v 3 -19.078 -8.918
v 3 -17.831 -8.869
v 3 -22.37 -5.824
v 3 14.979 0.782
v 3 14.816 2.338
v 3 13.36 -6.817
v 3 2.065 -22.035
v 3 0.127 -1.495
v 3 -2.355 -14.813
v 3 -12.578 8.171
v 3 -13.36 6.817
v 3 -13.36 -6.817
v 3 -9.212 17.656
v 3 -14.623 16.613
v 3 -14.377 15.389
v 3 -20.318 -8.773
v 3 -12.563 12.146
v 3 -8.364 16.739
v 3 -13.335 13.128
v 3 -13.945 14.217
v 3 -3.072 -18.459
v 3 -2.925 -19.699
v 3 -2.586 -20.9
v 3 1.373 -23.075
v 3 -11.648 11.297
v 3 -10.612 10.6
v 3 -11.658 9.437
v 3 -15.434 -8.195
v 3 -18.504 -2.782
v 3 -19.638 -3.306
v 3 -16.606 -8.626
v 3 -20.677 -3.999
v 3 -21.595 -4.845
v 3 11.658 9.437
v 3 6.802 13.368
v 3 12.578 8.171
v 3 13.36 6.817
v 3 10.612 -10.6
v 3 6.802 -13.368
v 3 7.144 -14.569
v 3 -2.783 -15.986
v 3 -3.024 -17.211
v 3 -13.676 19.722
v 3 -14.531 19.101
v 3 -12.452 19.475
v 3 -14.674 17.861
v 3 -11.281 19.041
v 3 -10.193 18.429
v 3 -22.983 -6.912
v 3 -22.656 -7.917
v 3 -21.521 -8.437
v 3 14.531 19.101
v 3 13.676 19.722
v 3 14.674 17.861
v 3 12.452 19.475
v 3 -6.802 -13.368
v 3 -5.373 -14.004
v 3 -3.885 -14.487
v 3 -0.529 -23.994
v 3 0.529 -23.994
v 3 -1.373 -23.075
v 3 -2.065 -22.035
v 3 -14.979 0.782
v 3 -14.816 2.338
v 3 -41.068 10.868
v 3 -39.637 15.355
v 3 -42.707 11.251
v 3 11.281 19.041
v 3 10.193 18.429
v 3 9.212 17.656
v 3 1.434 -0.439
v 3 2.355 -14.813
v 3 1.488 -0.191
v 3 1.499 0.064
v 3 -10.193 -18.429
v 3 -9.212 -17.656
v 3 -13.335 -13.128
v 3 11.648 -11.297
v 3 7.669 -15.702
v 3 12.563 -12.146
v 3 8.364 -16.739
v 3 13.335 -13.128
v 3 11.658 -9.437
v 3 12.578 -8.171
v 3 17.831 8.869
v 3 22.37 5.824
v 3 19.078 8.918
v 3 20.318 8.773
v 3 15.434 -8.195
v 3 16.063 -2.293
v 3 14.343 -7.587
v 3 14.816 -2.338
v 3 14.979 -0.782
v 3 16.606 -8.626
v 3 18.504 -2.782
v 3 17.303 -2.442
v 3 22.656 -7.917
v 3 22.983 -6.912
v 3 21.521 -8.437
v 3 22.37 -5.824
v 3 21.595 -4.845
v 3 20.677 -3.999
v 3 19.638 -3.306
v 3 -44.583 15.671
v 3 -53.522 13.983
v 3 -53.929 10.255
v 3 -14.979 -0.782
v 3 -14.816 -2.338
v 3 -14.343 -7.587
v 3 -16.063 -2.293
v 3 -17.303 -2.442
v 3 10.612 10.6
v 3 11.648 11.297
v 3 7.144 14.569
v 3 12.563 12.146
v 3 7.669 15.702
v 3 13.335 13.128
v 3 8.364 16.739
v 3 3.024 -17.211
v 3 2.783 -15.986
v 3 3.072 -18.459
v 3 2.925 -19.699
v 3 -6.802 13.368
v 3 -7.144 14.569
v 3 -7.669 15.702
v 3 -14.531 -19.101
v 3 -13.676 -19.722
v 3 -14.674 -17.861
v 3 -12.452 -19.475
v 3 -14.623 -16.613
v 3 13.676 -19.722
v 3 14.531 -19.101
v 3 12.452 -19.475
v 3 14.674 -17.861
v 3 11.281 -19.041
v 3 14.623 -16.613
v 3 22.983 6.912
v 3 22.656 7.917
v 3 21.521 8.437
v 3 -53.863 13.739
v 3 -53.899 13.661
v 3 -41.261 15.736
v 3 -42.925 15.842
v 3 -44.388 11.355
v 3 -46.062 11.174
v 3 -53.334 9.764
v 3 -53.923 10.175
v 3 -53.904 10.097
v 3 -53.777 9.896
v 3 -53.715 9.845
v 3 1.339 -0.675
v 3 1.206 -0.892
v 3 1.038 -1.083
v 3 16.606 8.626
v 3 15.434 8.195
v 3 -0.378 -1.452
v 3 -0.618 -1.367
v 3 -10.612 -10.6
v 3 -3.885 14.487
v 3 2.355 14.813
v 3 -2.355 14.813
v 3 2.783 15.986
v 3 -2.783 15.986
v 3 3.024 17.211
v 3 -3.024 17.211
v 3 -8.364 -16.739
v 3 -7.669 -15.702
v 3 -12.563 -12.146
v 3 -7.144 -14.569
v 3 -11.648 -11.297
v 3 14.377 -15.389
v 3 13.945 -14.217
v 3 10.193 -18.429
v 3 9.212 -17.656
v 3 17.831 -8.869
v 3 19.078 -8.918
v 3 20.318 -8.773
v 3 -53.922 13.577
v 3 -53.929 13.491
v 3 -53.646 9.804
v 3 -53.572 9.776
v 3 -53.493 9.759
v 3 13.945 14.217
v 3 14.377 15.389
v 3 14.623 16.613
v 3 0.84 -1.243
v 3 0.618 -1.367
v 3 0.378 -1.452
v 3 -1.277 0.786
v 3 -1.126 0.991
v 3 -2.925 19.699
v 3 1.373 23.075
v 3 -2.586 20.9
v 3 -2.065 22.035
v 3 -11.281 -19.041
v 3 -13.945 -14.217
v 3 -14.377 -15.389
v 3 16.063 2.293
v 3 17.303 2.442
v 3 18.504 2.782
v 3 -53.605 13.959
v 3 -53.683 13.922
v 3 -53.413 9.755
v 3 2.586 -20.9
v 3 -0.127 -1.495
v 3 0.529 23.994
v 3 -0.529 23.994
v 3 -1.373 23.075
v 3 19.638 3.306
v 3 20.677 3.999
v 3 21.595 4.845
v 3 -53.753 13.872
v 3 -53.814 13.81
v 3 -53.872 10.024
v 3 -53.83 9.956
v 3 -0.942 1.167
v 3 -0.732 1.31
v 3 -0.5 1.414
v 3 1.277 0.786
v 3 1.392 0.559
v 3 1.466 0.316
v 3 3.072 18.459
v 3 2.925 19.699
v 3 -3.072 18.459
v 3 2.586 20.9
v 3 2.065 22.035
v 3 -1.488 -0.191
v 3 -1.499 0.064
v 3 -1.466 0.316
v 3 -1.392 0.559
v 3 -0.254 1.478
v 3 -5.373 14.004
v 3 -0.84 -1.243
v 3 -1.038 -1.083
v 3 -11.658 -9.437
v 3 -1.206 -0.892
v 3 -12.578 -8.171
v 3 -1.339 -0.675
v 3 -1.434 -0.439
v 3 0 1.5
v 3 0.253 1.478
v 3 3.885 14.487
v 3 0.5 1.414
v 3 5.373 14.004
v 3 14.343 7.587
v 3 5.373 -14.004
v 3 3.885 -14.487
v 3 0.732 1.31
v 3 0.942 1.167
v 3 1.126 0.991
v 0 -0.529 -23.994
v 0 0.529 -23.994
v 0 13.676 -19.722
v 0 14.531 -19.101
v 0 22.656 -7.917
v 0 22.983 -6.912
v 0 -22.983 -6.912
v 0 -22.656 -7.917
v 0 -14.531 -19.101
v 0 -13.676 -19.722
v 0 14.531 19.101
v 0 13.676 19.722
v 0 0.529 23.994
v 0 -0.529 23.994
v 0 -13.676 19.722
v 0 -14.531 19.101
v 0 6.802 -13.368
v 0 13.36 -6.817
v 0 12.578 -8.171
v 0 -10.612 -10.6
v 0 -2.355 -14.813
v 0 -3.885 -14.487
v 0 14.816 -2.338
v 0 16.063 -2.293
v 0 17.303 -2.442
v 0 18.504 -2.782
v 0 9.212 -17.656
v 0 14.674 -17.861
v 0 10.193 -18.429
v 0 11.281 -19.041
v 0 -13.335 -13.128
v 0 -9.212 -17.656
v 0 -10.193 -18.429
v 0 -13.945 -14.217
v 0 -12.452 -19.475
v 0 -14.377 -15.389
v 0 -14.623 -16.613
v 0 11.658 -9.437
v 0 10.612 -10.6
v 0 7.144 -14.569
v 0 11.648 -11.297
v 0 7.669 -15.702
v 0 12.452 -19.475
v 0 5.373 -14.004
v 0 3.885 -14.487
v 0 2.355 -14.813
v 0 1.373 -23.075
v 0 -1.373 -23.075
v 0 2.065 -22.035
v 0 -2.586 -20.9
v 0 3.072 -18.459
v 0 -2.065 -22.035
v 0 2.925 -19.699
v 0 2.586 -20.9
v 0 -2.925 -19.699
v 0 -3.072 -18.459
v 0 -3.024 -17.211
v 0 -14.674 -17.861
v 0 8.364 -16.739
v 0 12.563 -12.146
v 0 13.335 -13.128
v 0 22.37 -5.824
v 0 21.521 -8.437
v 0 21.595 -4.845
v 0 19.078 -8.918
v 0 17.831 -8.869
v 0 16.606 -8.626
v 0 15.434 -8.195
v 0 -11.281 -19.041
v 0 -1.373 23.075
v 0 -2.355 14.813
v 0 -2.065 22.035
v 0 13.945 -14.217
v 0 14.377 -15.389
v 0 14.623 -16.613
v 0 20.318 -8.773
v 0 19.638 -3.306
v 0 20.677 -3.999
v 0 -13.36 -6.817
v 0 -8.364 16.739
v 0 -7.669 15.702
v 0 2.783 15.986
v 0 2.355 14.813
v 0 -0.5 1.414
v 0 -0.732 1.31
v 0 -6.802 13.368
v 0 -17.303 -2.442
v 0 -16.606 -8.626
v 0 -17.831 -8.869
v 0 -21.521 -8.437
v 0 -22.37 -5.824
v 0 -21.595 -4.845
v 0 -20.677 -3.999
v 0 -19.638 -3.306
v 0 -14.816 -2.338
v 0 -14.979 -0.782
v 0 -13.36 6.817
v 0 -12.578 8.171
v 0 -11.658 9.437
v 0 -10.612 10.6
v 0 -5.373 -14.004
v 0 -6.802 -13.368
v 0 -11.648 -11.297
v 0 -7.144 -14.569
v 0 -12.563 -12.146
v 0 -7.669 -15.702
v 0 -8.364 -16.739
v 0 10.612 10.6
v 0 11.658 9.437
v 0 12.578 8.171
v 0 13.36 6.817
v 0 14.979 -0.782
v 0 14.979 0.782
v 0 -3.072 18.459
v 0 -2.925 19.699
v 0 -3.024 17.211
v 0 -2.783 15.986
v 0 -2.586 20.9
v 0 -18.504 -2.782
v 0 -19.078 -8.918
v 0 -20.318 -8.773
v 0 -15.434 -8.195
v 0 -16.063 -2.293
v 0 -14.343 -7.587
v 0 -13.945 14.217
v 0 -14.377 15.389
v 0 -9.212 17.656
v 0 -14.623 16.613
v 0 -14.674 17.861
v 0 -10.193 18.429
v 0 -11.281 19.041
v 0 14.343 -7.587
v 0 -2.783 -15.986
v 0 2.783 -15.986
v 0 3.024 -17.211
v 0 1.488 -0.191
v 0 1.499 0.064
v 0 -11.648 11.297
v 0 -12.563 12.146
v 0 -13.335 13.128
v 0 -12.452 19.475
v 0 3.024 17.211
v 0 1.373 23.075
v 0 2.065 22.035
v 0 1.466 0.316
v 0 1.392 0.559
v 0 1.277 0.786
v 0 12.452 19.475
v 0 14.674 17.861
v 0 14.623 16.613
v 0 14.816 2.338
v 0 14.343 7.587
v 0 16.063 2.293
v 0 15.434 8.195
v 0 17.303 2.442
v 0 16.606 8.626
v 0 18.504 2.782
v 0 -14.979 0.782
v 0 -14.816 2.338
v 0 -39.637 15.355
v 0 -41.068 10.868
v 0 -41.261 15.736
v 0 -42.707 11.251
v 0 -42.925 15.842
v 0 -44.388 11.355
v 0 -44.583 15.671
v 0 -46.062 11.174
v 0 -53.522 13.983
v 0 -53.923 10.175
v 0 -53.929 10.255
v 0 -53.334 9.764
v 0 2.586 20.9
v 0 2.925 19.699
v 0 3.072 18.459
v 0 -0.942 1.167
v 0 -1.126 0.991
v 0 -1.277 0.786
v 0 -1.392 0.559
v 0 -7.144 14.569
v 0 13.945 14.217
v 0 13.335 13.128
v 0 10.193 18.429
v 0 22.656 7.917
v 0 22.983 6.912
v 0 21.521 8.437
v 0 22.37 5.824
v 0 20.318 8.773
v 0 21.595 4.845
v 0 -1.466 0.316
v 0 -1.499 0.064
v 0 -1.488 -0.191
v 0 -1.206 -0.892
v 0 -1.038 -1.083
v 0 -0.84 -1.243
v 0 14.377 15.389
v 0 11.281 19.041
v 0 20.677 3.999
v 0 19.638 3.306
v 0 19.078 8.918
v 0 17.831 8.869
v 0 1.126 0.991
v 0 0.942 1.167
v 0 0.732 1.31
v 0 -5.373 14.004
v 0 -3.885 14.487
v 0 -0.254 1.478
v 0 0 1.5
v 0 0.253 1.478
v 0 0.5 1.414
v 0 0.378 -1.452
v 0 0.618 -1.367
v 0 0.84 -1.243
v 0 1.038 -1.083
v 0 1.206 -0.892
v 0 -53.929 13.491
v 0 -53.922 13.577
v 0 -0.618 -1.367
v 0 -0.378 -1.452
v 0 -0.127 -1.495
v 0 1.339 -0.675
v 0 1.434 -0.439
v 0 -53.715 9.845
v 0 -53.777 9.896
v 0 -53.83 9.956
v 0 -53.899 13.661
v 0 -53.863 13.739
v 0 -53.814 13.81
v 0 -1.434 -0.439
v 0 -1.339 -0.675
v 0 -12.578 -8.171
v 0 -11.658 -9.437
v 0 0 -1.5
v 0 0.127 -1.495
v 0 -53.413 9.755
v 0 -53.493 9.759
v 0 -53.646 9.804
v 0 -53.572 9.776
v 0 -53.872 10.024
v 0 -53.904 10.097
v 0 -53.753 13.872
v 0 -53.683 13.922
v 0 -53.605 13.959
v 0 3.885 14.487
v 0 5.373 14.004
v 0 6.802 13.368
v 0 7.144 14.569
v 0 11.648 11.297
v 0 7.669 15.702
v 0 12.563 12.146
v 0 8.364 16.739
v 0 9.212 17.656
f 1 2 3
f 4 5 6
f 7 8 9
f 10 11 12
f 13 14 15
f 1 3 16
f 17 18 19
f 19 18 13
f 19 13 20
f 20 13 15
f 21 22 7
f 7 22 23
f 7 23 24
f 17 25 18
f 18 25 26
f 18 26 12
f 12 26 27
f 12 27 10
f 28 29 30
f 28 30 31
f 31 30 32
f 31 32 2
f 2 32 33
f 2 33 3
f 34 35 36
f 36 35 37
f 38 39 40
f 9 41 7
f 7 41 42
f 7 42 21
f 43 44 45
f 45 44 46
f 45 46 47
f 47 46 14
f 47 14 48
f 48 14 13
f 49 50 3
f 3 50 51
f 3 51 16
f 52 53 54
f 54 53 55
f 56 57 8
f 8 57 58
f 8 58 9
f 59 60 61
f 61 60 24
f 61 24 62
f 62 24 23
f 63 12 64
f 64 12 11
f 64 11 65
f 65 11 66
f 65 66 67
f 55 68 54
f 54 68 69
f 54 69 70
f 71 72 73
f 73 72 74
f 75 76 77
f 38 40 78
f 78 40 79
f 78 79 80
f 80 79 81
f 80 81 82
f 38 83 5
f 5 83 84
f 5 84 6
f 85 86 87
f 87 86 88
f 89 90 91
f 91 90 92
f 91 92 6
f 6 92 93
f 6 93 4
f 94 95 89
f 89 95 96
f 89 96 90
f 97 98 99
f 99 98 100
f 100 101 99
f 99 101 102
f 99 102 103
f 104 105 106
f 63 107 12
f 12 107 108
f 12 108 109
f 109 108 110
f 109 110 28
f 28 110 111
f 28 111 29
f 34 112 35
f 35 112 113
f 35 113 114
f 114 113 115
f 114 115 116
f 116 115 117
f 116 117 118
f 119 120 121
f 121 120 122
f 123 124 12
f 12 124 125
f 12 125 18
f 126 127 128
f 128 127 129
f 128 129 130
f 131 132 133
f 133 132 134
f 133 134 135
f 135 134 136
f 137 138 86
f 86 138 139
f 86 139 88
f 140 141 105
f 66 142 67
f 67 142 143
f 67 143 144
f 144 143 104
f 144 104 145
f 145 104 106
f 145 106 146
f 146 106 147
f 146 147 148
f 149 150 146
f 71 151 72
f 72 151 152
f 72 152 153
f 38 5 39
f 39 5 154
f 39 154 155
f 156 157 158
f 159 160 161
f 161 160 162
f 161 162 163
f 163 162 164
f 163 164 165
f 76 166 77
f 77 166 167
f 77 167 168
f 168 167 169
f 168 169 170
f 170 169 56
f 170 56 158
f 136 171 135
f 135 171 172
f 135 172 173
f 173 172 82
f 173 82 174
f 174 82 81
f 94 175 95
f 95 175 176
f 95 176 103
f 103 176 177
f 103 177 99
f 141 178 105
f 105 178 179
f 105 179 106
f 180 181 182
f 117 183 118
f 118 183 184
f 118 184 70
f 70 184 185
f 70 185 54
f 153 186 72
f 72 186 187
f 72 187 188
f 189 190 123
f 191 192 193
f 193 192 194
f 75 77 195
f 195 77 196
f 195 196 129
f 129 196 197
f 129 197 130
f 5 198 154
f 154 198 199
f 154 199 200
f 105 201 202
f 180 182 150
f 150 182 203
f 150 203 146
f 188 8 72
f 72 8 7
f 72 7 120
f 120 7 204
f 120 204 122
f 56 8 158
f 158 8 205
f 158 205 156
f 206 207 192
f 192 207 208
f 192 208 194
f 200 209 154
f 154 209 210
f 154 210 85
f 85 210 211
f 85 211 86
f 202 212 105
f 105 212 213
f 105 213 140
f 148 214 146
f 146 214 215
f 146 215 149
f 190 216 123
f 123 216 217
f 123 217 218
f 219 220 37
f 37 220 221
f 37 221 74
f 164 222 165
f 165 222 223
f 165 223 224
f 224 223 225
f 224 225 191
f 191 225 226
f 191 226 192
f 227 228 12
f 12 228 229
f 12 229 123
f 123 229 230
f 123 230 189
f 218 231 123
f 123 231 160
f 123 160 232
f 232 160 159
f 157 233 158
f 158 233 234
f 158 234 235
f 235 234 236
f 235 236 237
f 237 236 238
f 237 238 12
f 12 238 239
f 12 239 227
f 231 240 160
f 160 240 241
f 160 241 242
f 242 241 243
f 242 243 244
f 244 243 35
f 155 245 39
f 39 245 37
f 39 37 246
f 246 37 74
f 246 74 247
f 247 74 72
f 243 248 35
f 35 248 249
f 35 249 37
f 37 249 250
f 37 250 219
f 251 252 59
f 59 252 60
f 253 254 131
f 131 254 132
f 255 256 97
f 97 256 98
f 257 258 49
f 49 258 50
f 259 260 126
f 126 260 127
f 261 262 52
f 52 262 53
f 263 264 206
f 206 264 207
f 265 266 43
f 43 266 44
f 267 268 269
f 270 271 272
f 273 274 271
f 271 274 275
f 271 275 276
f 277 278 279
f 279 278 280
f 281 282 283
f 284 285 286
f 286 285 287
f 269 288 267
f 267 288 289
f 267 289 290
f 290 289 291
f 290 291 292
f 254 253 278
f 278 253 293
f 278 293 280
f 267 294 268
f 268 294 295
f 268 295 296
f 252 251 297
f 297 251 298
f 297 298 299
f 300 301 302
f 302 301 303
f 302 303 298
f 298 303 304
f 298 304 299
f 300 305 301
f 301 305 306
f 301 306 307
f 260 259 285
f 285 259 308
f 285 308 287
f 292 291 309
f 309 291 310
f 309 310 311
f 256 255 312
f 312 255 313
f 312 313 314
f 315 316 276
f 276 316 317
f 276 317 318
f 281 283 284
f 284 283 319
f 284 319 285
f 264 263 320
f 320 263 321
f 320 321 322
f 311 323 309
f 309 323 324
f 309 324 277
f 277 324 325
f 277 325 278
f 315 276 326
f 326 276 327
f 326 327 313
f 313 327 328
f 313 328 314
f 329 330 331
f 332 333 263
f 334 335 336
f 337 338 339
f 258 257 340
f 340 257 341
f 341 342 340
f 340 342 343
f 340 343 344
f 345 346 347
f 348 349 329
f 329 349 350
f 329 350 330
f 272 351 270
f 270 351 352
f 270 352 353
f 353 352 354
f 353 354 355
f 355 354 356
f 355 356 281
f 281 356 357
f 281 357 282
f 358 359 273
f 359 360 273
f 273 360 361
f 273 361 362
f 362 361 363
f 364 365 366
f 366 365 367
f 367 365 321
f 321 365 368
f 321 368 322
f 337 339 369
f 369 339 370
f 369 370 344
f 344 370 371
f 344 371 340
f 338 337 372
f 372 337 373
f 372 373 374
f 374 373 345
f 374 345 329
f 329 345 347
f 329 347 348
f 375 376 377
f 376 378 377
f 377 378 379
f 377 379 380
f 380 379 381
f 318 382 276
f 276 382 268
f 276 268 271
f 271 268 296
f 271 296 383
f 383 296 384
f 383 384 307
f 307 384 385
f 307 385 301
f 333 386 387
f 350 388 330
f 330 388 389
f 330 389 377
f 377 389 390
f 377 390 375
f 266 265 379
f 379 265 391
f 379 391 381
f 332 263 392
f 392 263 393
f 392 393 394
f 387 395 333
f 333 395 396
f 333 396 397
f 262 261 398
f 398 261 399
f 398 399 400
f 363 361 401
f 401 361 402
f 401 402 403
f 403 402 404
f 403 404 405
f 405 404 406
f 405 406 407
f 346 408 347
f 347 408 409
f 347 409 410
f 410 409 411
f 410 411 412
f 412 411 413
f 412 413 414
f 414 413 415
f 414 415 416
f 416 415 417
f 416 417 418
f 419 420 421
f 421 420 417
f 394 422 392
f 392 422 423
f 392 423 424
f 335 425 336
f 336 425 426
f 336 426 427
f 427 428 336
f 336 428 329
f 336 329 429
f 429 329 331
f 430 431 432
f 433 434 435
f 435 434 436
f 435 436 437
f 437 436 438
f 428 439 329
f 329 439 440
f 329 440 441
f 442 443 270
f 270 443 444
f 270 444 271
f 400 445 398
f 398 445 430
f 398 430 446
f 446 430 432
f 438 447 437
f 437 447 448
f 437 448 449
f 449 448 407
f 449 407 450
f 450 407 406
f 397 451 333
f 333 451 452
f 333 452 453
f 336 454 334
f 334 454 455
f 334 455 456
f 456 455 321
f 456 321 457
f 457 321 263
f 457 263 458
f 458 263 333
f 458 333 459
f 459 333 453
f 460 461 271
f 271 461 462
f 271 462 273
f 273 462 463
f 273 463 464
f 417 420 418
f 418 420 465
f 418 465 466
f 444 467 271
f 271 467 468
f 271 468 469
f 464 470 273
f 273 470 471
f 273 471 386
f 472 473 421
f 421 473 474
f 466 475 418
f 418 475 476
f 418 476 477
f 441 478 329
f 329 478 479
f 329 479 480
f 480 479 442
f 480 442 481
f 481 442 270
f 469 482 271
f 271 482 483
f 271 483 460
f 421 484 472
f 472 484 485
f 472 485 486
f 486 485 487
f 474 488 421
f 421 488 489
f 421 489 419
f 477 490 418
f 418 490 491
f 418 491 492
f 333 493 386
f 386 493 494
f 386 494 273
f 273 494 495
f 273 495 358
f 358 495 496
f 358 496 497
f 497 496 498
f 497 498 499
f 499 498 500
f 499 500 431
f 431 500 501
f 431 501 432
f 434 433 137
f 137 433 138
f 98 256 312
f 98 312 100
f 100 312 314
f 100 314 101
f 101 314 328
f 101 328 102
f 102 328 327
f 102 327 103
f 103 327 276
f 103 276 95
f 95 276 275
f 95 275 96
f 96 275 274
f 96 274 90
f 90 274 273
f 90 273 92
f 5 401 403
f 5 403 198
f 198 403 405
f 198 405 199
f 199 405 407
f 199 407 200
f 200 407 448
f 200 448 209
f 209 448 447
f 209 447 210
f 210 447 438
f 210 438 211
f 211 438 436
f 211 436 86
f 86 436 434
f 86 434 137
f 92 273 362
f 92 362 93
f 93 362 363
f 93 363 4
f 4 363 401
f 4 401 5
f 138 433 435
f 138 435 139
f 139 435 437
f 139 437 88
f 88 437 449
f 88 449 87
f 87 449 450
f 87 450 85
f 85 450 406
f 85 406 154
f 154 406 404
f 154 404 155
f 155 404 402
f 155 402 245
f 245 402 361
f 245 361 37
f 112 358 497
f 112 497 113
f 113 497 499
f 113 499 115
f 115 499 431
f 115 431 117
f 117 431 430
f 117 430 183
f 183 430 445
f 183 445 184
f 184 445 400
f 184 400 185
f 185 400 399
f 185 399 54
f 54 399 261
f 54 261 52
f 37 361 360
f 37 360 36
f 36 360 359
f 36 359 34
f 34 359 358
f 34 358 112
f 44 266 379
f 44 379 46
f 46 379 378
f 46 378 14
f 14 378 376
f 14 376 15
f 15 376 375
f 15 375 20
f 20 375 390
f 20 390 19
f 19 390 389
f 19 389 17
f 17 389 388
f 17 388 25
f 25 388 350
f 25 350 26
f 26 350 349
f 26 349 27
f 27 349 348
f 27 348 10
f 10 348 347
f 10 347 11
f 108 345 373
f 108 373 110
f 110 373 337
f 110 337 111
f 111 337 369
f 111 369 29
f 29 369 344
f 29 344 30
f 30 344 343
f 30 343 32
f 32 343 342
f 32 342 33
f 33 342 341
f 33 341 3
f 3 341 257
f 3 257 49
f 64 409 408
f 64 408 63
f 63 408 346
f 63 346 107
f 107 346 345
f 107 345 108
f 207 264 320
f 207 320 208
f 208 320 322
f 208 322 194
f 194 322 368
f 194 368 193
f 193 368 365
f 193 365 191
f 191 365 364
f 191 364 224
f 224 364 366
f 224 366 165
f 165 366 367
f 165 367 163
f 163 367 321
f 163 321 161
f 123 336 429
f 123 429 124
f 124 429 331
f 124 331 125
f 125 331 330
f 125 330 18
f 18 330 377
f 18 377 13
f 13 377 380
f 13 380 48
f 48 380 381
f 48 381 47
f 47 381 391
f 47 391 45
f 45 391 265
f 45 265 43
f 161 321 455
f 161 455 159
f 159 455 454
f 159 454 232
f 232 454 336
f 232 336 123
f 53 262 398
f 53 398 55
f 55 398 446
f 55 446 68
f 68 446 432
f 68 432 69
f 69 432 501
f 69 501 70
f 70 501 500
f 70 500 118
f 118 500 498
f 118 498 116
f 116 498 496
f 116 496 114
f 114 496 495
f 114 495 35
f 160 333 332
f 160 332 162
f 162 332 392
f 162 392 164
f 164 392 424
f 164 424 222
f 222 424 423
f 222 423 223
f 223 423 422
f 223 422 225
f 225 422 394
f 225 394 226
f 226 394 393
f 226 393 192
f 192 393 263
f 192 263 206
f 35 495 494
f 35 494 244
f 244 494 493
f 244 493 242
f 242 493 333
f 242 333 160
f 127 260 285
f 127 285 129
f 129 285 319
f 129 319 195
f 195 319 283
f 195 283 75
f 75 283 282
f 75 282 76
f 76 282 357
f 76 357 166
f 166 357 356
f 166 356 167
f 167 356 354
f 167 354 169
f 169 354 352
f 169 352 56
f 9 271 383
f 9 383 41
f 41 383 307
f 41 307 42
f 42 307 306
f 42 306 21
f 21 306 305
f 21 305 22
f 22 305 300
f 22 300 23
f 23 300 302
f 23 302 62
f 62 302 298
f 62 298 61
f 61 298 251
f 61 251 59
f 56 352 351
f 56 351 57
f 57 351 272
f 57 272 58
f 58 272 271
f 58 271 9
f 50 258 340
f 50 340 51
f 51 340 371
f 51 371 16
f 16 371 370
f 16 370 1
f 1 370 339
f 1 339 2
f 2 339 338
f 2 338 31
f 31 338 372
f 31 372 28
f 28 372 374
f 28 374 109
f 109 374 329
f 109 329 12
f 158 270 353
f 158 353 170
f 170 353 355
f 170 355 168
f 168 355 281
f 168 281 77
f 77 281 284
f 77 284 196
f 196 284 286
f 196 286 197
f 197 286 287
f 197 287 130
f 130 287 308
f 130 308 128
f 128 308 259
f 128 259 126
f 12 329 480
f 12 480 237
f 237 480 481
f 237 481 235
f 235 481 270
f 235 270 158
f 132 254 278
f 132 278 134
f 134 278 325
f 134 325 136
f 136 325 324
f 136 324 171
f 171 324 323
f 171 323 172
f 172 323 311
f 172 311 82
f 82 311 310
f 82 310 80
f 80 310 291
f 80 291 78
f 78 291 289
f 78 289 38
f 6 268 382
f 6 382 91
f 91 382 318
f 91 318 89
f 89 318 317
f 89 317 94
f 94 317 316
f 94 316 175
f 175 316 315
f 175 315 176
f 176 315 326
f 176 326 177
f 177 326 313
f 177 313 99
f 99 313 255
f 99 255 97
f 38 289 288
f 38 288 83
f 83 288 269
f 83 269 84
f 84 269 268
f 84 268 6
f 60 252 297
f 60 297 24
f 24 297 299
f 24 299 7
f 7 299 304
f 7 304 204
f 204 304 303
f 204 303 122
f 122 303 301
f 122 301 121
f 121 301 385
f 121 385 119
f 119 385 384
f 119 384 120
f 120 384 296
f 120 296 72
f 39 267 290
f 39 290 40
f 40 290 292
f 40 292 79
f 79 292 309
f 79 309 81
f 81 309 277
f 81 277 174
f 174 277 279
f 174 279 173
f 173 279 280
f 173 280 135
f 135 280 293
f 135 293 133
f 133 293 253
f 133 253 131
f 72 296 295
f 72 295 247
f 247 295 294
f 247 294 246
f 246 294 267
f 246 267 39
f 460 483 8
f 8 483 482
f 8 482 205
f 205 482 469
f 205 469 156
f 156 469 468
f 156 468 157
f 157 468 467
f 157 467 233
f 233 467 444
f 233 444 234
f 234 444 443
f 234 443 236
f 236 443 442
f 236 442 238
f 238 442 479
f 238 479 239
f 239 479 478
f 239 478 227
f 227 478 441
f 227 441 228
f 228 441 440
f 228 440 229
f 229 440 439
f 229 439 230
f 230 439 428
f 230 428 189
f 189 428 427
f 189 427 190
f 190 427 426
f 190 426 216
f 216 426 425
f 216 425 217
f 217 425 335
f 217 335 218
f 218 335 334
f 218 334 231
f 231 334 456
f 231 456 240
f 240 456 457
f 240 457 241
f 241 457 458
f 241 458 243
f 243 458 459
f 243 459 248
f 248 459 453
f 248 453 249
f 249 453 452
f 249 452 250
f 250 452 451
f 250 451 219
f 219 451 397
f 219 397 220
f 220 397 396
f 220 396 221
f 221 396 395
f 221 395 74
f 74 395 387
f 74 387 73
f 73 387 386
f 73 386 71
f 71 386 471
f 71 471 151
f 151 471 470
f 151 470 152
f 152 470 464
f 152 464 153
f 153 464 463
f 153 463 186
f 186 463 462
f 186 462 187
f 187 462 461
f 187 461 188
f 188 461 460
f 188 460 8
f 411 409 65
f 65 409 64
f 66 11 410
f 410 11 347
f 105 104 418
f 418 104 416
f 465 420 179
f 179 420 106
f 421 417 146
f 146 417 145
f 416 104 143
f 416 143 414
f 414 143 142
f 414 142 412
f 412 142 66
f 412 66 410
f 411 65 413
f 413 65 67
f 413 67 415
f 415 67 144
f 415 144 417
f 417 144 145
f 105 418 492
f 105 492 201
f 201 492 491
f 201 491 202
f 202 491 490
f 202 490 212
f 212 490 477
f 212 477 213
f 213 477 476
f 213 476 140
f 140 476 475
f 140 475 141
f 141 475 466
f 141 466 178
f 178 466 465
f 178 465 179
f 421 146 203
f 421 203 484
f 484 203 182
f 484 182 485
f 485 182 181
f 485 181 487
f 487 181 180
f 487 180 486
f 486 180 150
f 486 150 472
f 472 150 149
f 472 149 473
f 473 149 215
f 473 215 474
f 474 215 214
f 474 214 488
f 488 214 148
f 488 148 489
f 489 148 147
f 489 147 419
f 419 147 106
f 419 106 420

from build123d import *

# Parameters (mm, degrees)
BASPROSKE_W         = 3
BASPROSKE_H         = 24
TOOTHCUT_DEPTH      = 35.073450075
TEETHCUTS_COUNT     = 10
TEETHCUTS_ANGLE     = 324
BORSKE_R            = 1.5
BORE_DEPTH          = 50.0000508
CUT_EXTRUDE1_DEPTH  = 10
BOSS_EXTRUDE1_DEPTH = 3
FILLET1_R           = 10
FILLET2_R           = 0.5


with BuildPart() as part:
    # BasProSke → Base-Revolve (revolve)
    with BuildSketch(Plane(origin=(0, 0, 0), x_dir=(1, 0, 0), z_dir=(0, 1, 0)), mode=Mode.PRIVATE) as base_revolve_sk:
        with Locations((1.5, 12)):
            Rectangle(BASPROSKE_W, BASPROSKE_H)
    revolve(base_revolve_sk.sketch.rotate(Axis((-10, 0, 0), (1, 0, 0)), 180), axis=Axis((-10, 0, 0), (1, 0, 0)))

    # TooCutSke → ToothCut (cut, through all)
    with BuildSketch(Plane(origin=(0, 0, 0), x_dir=(0, 0, -1), z_dir=(1, 0, 0))):
        with BuildLine():
            ThreePointArc((2.33803632, 14.815653451), (0, 14.999), (-2.33803632, 14.815653451))
            ThreePointArc((-2.33803632, 14.815653451), (-3.315013319, 19.654913653), (-6.946609122, 22.999227528))
            ThreePointArc((-6.946609122, 22.999227528), (0, 24.0254), (6.946609122, 22.999227528))
            ThreePointArc((6.946609122, 22.999227528), (3.315013319, 19.654913653), (2.33803632, 14.815653451))
        make_face()
    toothcut = extrude(amount=TOOTHCUT_DEPTH, mode=Mode.SUBTRACT)

    # TeethCuts: ToothCut ×10 about axis
    teethcuts_axis = Axis((-10, 0, 0), (1, 0, 0))
    for i in range(1, TEETHCUTS_COUNT):
        add(toothcut.rotate(teethcuts_axis, i * TEETHCUTS_ANGLE / (TEETHCUTS_COUNT - 1)), mode=Mode.SUBTRACT)

    # BorSke → Bore (cut, symmetric)
    with BuildSketch(Plane(origin=(0, 0, 0), x_dir=(0, 0, -1), z_dir=(1, 0, 0))):
        with Locations(Location((0, 0, 0), (0, 0, 180))):
            Circle(BORSKE_R)
    extrude(amount=BORE_DEPTH, both=True, mode=Mode.SUBTRACT)

    # Sketch1 → Cut-Extrude1 (cut)
    with BuildSketch(Plane.ZY):
        Polygon((6.816911485, -13.360378693), (2.33803632, -14.815653451), (0, -15.575327501), (3.846423881, -27.413402957), (12.603452521, -24.568071871), (8.75702864, -12.729996416), align=None)
    extrude(amount=-CUT_EXTRUDE1_DEPTH, mode=Mode.SUBTRACT)

    # Sketch2 → Boss-Extrude1 (add)
    with BuildSketch(Plane.ZY):
        Polygon((11.666327165, -43.525180612), (16.145202329, -42.069905854), (6.816911485, -13.360378693), (2.33803632, -14.815653451), align=None)
        Polygon((13.905764747, -53.929068958), (9.648574383, -53.929068958), (11.666327165, -43.525180612), (16.145202329, -42.069905854), align=None)
    extrude(amount=-BOSS_EXTRUDE1_DEPTH)

    # Fillet1
    fillet1_edges = [part.edges().sort_by_distance(p)[0] for p in [
        (1.5, -43.525180612, 11.666327165),
        (1.5, -42.069905854, 16.145202329),
    ]]
    fillet(fillet1_edges, radius=FILLET1_R)

    # Fillet2
    fillet2_edges = [part.edges().sort_by_distance(p)[0] for p in [
        (1.5, -53.929068958, 13.905764747),
        (1.5, -53.929068958, 9.648574383),
    ]]
    fillet(fillet2_edges, radius=FILLET2_R)


solid = part.part
